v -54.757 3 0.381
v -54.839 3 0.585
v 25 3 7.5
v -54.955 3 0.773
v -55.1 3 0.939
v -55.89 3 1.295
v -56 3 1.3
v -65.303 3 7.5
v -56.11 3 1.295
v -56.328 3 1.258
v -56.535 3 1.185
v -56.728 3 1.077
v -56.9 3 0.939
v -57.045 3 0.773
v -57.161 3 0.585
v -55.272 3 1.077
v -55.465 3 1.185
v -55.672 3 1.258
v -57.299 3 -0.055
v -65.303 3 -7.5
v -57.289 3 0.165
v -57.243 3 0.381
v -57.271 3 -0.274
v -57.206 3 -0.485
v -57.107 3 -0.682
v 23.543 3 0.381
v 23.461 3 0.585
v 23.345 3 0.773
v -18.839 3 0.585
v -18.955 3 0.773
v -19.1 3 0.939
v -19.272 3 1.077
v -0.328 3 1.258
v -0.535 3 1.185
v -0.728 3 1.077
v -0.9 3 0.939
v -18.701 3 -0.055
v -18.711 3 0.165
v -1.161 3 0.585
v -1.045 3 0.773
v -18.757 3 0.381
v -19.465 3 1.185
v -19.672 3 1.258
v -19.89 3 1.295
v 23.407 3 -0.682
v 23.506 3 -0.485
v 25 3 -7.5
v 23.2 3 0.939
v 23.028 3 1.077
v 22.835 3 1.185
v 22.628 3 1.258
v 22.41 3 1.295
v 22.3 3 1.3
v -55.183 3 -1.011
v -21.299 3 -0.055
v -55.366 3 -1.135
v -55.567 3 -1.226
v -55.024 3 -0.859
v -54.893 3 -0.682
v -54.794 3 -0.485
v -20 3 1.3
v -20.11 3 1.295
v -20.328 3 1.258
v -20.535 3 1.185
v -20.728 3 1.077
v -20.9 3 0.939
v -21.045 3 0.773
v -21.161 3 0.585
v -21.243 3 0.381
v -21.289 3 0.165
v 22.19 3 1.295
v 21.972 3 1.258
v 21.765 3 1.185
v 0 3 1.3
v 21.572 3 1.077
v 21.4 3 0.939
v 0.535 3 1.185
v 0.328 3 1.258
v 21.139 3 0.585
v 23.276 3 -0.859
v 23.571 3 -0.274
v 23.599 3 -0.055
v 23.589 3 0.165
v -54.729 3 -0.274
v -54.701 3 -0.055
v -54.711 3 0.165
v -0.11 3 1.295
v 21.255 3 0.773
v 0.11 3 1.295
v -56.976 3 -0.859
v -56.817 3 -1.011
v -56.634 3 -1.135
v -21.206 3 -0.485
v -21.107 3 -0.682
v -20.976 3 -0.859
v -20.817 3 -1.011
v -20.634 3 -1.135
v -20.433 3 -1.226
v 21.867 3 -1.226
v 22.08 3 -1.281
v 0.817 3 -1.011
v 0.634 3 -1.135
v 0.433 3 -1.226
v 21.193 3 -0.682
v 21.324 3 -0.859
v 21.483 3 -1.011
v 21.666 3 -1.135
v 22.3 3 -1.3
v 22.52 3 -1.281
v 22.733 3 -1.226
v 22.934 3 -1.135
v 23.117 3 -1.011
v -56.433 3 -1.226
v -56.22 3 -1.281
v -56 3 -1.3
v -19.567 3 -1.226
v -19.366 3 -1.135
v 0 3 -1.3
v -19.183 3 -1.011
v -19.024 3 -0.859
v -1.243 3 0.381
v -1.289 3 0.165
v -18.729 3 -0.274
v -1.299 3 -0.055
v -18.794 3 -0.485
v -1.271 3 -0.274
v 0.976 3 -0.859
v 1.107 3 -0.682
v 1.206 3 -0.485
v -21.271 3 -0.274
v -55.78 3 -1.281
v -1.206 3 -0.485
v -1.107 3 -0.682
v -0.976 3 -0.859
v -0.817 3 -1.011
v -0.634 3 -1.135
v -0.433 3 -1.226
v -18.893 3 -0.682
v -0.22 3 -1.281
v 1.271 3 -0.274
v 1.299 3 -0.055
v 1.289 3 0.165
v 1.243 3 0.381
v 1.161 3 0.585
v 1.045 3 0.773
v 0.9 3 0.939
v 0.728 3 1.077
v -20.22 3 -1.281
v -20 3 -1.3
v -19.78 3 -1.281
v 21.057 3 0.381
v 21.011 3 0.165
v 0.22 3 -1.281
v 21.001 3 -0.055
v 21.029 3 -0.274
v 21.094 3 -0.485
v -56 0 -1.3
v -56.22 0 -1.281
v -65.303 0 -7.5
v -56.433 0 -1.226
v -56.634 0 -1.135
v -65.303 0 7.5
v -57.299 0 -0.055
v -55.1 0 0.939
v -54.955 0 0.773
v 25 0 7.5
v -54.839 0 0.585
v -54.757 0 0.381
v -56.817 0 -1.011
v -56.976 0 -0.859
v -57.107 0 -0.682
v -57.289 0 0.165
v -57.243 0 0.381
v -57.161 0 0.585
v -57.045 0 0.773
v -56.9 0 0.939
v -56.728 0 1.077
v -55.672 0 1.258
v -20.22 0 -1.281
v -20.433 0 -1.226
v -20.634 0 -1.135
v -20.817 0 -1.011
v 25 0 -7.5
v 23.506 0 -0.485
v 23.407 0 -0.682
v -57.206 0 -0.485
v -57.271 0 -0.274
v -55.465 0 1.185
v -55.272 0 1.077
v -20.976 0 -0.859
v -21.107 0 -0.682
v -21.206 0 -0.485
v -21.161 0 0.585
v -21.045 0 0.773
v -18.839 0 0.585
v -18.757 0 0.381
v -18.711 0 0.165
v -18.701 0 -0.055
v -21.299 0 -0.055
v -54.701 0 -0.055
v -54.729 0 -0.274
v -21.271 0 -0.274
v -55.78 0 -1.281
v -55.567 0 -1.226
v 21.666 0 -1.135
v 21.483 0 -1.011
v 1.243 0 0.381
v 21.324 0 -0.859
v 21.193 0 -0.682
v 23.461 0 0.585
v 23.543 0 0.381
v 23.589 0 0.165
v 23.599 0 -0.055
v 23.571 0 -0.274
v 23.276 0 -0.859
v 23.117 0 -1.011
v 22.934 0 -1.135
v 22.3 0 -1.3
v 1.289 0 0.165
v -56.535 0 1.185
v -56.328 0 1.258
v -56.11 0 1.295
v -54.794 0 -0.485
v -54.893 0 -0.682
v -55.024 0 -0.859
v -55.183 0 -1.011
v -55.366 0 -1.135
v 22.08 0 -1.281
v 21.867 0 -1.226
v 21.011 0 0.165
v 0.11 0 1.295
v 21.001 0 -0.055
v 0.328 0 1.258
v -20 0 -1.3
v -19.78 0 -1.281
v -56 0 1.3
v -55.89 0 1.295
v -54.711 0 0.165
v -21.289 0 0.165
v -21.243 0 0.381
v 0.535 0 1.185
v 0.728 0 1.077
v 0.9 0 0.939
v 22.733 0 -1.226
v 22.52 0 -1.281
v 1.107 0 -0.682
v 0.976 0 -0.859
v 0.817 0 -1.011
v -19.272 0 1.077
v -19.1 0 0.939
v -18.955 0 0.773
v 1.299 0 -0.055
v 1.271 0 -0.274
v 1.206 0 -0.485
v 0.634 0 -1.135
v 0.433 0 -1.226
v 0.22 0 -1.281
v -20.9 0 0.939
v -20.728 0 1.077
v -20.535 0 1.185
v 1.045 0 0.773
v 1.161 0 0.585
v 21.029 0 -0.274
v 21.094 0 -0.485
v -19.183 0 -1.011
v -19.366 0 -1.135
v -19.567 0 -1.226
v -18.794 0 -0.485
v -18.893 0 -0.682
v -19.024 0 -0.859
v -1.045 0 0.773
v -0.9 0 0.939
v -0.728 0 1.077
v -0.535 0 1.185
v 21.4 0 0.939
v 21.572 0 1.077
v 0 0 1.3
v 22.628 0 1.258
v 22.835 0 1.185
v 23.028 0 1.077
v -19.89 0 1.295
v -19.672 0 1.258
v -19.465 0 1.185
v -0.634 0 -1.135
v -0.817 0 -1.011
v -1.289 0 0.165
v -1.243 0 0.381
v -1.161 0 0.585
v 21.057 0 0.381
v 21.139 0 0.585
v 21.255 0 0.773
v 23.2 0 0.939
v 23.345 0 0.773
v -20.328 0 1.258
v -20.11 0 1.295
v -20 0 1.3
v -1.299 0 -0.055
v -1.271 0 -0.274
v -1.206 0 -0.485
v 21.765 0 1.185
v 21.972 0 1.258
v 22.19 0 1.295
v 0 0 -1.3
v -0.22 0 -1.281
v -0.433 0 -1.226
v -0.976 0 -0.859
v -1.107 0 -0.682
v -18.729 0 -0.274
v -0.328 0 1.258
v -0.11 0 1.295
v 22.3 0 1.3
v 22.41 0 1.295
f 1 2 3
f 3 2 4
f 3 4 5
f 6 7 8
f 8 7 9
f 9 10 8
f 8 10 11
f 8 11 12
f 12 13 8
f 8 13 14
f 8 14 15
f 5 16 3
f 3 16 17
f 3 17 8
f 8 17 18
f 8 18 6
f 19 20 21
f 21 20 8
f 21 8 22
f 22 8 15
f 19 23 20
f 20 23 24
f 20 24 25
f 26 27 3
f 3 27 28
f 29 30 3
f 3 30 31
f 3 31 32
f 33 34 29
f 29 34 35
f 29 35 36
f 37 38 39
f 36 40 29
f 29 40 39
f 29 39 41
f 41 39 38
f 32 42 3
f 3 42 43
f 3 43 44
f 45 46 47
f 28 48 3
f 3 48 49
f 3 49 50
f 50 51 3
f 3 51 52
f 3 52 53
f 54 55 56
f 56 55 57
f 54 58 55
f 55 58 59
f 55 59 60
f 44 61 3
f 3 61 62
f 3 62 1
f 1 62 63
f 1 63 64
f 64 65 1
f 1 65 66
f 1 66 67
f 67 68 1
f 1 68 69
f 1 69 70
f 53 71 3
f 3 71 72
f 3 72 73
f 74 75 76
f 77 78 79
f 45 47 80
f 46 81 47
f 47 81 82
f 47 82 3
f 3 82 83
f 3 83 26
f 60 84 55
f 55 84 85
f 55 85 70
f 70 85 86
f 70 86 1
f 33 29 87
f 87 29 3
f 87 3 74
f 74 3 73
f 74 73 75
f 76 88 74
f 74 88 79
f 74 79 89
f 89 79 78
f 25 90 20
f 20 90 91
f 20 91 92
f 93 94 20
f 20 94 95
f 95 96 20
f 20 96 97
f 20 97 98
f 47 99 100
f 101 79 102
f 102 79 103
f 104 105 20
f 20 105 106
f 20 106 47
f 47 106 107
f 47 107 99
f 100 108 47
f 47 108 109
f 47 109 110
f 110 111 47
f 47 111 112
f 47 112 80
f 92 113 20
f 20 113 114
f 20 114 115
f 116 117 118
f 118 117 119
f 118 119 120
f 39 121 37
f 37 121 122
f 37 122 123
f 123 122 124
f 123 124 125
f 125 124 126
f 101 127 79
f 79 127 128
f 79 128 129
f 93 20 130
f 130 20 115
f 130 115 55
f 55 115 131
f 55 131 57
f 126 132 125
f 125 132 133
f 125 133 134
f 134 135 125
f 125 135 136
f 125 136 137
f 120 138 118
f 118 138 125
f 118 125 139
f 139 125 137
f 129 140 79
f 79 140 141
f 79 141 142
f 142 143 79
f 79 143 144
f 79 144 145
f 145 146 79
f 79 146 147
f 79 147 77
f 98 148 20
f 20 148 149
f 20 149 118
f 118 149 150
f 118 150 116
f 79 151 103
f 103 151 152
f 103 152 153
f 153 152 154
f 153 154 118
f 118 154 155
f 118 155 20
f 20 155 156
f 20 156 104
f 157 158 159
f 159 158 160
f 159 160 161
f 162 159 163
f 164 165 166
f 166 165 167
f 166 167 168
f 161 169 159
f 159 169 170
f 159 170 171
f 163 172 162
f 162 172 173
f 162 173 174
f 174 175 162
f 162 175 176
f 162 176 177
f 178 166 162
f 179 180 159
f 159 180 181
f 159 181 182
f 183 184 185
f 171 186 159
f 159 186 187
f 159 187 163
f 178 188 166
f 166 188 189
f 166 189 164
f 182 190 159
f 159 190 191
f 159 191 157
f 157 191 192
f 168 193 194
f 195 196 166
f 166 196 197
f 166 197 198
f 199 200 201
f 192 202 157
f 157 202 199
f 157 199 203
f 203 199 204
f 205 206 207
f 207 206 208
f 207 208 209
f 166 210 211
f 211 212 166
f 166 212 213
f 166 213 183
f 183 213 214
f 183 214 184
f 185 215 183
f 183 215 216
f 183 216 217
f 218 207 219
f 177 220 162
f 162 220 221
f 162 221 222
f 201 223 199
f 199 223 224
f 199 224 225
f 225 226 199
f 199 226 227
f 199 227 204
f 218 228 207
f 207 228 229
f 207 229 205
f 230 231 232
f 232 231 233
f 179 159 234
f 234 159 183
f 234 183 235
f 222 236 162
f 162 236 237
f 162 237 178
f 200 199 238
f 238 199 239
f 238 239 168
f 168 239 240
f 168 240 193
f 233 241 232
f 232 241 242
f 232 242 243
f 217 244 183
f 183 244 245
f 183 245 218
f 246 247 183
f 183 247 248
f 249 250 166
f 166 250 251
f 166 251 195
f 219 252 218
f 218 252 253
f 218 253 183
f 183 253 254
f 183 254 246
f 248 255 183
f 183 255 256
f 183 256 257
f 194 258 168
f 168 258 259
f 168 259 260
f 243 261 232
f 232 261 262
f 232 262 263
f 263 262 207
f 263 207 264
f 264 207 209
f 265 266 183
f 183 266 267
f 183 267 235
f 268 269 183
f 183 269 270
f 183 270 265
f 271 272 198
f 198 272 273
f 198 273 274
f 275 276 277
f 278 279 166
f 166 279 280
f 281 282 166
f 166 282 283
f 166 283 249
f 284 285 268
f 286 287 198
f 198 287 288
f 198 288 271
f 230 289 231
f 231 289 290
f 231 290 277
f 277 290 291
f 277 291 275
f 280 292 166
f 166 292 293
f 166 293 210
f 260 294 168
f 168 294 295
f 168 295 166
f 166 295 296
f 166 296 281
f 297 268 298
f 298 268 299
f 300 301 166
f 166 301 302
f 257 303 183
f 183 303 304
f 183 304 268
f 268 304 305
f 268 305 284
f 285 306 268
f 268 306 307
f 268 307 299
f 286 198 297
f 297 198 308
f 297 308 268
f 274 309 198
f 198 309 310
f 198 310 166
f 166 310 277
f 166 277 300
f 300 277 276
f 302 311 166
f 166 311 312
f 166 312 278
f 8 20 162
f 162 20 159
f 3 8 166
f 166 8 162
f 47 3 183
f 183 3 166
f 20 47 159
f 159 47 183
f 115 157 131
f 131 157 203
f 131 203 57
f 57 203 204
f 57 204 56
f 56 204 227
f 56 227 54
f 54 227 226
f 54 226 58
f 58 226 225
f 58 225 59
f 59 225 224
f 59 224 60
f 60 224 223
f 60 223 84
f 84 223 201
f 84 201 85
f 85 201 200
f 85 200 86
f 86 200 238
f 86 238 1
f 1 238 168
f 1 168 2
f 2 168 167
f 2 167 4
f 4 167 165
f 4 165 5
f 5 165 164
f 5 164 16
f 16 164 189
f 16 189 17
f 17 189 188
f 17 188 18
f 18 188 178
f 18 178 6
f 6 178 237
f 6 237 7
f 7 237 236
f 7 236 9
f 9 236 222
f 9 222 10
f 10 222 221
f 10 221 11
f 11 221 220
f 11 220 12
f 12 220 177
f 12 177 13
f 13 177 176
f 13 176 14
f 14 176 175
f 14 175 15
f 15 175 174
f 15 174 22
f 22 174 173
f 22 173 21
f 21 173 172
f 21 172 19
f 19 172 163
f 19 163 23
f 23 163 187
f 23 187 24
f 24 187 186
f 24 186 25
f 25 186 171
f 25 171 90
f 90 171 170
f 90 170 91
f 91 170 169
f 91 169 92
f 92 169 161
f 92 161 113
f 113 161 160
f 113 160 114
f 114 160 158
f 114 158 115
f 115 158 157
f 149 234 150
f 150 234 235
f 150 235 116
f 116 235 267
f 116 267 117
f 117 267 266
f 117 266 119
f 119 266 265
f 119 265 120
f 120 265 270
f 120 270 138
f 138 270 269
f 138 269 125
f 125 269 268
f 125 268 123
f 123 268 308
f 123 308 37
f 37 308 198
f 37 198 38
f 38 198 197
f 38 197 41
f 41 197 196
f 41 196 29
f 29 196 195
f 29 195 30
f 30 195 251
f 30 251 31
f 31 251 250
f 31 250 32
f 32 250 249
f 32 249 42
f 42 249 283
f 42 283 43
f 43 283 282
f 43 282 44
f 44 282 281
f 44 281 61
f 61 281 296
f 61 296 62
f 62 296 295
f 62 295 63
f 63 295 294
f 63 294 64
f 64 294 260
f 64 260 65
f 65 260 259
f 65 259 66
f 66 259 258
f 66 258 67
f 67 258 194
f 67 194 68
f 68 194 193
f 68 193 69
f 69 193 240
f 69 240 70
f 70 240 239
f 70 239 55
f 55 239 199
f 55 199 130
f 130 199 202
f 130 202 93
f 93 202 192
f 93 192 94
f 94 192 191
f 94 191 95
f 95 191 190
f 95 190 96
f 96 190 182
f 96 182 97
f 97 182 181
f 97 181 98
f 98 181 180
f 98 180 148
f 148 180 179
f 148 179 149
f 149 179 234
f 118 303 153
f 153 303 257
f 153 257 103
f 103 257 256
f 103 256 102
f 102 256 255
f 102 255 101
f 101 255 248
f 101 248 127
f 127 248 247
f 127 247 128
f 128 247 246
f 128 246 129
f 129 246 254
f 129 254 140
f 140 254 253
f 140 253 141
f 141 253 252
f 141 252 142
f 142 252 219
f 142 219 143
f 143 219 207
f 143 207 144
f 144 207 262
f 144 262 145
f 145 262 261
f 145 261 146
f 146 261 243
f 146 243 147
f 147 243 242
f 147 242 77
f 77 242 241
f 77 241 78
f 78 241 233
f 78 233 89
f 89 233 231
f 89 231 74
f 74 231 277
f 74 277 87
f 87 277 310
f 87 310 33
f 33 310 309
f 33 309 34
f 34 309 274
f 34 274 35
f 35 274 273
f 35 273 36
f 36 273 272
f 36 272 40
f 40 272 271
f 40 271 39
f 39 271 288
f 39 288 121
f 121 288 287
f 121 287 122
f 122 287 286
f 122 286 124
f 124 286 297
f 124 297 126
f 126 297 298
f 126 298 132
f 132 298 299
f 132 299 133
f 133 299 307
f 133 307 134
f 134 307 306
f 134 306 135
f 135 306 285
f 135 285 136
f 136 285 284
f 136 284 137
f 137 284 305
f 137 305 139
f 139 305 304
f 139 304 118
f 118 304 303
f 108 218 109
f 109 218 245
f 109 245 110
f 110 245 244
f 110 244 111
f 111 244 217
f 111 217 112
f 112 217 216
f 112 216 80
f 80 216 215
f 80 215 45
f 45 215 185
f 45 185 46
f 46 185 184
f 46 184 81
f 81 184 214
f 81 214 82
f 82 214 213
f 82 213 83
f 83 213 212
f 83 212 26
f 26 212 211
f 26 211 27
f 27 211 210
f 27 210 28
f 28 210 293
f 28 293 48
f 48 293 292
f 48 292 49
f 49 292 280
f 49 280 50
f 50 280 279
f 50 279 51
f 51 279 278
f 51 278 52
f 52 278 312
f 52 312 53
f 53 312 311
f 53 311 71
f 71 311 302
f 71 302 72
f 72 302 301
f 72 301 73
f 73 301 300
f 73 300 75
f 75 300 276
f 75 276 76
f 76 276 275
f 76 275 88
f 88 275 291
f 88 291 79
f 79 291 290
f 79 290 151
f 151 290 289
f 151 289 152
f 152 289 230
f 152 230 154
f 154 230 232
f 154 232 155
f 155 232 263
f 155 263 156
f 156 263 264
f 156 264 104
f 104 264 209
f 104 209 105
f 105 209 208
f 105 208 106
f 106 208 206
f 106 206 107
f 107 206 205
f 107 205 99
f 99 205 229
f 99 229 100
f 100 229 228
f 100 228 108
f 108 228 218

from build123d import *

# Parameters (mm, degrees)
SKETCH_1_R      = 1.3
EXTRUDE_1_DEPTH = 3


with BuildPart() as part:
    # 草图1 → 凸台-拉伸1 (new body)
    with BuildSketch(Plane(origin=(0, 0, 0), x_dir=(1, 0, 0), z_dir=(0, 1, 0))):
        Polygon((-65.303381521, 7.5), (-65.303381521, -7.5), (-56, -7.5), (-20, -7.5), (0, -7.5), (25, -7.5), (25, 0), (25, 7.5), (0, 7.5), align=None)
        with Locations((-56, 0)):
            Circle(SKETCH_1_R, mode=Mode.SUBTRACT)
        with Locations((-20, 0)):
            Circle(SKETCH_1_R, mode=Mode.SUBTRACT)
        Circle(SKETCH_1_R, mode=Mode.SUBTRACT)
        with Locations((22.3, 0)):
            Circle(SKETCH_1_R, mode=Mode.SUBTRACT)
    extrude(amount=EXTRUDE_1_DEPTH)


solid = part.part
